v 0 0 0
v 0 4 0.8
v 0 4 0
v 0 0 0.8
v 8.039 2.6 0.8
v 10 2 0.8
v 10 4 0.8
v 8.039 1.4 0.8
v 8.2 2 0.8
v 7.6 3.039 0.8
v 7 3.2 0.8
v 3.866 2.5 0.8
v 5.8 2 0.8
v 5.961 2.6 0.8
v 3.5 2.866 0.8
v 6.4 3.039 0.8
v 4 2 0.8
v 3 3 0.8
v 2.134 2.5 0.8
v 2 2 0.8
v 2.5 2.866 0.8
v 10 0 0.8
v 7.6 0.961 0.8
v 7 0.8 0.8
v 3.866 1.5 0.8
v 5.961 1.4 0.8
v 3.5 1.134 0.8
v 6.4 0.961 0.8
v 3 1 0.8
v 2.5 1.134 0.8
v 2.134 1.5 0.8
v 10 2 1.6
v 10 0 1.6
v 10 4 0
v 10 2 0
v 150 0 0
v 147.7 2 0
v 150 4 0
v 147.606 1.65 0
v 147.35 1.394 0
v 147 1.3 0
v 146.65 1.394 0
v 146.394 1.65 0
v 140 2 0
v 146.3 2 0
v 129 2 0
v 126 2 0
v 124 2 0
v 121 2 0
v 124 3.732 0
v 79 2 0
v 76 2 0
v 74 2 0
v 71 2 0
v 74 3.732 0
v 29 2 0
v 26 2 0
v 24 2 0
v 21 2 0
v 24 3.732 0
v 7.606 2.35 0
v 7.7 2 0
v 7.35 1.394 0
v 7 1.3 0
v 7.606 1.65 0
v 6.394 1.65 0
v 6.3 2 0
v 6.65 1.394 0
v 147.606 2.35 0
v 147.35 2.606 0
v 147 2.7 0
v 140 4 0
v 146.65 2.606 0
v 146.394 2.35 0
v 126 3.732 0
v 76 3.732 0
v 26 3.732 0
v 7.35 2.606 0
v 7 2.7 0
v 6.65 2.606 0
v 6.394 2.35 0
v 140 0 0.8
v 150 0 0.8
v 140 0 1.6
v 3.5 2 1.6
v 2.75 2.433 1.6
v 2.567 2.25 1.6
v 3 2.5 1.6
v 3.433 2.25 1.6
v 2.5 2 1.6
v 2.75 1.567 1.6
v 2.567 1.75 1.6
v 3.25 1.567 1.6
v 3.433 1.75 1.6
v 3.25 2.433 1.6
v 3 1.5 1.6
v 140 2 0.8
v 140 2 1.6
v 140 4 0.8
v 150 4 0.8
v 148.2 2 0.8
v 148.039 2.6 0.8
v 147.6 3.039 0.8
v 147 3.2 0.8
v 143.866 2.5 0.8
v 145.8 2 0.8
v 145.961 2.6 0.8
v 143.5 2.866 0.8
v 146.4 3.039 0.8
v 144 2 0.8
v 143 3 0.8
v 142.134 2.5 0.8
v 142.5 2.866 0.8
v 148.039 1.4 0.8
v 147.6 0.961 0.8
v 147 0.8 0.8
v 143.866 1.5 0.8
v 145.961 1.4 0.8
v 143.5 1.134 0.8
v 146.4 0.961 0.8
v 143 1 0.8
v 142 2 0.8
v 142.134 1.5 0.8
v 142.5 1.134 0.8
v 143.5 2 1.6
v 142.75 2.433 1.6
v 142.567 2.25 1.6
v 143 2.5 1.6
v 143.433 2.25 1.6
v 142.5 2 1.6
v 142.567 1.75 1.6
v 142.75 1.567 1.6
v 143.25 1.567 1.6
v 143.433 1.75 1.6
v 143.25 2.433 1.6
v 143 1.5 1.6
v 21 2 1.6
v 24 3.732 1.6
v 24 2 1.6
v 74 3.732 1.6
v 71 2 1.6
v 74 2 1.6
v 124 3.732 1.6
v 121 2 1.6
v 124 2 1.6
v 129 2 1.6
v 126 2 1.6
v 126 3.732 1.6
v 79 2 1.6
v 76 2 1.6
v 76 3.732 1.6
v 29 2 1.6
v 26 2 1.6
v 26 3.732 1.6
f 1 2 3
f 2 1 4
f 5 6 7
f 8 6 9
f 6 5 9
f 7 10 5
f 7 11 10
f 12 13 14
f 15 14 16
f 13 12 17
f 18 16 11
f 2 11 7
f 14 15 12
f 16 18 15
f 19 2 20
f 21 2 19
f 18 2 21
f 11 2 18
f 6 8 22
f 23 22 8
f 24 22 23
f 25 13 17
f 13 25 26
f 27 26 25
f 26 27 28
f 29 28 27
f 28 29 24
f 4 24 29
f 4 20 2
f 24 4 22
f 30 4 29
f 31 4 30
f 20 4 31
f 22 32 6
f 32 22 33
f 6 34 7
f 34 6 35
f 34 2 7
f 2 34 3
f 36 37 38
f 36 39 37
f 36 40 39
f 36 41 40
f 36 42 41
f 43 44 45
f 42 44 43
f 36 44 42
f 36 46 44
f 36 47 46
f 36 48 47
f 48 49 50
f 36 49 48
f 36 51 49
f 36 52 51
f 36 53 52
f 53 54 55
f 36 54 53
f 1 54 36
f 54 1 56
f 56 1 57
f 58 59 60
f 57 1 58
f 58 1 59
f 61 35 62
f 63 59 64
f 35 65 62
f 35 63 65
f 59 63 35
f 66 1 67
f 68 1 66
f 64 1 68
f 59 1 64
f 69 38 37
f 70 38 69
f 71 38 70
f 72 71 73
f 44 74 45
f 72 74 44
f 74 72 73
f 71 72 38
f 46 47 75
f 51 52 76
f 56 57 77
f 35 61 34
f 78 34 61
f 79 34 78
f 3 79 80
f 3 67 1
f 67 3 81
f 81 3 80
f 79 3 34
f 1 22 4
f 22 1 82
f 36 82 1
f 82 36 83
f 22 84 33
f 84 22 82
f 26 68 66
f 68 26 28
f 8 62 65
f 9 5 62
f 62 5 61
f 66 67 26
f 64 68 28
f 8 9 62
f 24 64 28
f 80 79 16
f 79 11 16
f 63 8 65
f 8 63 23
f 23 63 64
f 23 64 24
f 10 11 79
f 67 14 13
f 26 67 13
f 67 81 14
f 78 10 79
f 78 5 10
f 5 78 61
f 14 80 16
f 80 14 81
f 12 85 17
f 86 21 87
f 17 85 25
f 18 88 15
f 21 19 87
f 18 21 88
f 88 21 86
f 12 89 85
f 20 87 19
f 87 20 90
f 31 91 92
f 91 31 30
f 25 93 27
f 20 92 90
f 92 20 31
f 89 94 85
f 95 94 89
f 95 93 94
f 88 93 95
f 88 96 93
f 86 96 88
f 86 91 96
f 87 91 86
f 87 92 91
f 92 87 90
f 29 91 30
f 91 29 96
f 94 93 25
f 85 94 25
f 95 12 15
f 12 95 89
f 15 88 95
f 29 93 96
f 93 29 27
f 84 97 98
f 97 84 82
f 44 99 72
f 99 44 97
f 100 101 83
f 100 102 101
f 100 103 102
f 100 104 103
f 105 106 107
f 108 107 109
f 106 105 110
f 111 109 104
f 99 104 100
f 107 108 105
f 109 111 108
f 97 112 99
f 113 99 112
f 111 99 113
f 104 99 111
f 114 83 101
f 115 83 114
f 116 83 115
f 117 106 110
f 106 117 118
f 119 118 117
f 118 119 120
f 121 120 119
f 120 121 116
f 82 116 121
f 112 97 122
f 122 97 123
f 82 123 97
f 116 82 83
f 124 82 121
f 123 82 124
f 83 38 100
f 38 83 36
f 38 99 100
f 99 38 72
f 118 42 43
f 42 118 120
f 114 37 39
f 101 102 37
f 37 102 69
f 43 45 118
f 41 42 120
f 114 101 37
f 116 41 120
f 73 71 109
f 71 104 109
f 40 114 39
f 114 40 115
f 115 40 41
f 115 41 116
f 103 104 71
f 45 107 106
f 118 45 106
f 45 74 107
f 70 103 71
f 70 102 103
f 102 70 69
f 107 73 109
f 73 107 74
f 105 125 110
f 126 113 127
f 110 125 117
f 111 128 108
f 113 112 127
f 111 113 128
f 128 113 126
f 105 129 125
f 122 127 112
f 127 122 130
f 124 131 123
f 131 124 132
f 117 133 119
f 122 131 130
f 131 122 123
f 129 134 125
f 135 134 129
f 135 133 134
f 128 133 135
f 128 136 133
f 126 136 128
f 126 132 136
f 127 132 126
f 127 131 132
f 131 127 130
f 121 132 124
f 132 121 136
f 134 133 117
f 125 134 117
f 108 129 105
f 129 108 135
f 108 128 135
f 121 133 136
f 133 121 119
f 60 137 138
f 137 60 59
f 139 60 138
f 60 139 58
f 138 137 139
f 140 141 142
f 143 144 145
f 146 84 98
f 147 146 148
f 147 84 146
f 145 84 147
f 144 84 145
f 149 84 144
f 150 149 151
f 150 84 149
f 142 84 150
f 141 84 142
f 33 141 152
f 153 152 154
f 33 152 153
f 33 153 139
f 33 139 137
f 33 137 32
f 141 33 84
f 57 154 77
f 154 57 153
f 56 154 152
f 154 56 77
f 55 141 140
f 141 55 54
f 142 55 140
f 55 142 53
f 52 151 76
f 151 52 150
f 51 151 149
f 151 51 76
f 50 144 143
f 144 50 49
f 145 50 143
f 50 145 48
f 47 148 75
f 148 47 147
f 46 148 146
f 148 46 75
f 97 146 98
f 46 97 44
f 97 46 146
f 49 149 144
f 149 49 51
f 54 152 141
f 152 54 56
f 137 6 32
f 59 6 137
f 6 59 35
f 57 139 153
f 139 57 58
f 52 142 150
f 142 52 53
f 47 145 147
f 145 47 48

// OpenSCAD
translate([10,0,0])
	cube([130,2,1.6]);

for (i = [0:1]){
translate([140*i,0,0])
{	
	translate([3,2,0.8])
		cylinder(0.8,1,0.5, $fn=12);
	difference(){
		cube([10,4,0.8]);
		translate([7,2,0])
		cylinder(0.8,0.7,1.2, $fn=12);
	}
}
}// for i

for (i = [0:2]) {
	translate([i*50,0,0]){
		translate([23,2,0])
			rotate([0,0,60])
				cylinder(1.6,2,2, $fn=3);
		translate([27,2,0])
			rotate([0,0,0])
				cylinder(1.6,2,2, $fn=3);
	} //translate i
} //for i
